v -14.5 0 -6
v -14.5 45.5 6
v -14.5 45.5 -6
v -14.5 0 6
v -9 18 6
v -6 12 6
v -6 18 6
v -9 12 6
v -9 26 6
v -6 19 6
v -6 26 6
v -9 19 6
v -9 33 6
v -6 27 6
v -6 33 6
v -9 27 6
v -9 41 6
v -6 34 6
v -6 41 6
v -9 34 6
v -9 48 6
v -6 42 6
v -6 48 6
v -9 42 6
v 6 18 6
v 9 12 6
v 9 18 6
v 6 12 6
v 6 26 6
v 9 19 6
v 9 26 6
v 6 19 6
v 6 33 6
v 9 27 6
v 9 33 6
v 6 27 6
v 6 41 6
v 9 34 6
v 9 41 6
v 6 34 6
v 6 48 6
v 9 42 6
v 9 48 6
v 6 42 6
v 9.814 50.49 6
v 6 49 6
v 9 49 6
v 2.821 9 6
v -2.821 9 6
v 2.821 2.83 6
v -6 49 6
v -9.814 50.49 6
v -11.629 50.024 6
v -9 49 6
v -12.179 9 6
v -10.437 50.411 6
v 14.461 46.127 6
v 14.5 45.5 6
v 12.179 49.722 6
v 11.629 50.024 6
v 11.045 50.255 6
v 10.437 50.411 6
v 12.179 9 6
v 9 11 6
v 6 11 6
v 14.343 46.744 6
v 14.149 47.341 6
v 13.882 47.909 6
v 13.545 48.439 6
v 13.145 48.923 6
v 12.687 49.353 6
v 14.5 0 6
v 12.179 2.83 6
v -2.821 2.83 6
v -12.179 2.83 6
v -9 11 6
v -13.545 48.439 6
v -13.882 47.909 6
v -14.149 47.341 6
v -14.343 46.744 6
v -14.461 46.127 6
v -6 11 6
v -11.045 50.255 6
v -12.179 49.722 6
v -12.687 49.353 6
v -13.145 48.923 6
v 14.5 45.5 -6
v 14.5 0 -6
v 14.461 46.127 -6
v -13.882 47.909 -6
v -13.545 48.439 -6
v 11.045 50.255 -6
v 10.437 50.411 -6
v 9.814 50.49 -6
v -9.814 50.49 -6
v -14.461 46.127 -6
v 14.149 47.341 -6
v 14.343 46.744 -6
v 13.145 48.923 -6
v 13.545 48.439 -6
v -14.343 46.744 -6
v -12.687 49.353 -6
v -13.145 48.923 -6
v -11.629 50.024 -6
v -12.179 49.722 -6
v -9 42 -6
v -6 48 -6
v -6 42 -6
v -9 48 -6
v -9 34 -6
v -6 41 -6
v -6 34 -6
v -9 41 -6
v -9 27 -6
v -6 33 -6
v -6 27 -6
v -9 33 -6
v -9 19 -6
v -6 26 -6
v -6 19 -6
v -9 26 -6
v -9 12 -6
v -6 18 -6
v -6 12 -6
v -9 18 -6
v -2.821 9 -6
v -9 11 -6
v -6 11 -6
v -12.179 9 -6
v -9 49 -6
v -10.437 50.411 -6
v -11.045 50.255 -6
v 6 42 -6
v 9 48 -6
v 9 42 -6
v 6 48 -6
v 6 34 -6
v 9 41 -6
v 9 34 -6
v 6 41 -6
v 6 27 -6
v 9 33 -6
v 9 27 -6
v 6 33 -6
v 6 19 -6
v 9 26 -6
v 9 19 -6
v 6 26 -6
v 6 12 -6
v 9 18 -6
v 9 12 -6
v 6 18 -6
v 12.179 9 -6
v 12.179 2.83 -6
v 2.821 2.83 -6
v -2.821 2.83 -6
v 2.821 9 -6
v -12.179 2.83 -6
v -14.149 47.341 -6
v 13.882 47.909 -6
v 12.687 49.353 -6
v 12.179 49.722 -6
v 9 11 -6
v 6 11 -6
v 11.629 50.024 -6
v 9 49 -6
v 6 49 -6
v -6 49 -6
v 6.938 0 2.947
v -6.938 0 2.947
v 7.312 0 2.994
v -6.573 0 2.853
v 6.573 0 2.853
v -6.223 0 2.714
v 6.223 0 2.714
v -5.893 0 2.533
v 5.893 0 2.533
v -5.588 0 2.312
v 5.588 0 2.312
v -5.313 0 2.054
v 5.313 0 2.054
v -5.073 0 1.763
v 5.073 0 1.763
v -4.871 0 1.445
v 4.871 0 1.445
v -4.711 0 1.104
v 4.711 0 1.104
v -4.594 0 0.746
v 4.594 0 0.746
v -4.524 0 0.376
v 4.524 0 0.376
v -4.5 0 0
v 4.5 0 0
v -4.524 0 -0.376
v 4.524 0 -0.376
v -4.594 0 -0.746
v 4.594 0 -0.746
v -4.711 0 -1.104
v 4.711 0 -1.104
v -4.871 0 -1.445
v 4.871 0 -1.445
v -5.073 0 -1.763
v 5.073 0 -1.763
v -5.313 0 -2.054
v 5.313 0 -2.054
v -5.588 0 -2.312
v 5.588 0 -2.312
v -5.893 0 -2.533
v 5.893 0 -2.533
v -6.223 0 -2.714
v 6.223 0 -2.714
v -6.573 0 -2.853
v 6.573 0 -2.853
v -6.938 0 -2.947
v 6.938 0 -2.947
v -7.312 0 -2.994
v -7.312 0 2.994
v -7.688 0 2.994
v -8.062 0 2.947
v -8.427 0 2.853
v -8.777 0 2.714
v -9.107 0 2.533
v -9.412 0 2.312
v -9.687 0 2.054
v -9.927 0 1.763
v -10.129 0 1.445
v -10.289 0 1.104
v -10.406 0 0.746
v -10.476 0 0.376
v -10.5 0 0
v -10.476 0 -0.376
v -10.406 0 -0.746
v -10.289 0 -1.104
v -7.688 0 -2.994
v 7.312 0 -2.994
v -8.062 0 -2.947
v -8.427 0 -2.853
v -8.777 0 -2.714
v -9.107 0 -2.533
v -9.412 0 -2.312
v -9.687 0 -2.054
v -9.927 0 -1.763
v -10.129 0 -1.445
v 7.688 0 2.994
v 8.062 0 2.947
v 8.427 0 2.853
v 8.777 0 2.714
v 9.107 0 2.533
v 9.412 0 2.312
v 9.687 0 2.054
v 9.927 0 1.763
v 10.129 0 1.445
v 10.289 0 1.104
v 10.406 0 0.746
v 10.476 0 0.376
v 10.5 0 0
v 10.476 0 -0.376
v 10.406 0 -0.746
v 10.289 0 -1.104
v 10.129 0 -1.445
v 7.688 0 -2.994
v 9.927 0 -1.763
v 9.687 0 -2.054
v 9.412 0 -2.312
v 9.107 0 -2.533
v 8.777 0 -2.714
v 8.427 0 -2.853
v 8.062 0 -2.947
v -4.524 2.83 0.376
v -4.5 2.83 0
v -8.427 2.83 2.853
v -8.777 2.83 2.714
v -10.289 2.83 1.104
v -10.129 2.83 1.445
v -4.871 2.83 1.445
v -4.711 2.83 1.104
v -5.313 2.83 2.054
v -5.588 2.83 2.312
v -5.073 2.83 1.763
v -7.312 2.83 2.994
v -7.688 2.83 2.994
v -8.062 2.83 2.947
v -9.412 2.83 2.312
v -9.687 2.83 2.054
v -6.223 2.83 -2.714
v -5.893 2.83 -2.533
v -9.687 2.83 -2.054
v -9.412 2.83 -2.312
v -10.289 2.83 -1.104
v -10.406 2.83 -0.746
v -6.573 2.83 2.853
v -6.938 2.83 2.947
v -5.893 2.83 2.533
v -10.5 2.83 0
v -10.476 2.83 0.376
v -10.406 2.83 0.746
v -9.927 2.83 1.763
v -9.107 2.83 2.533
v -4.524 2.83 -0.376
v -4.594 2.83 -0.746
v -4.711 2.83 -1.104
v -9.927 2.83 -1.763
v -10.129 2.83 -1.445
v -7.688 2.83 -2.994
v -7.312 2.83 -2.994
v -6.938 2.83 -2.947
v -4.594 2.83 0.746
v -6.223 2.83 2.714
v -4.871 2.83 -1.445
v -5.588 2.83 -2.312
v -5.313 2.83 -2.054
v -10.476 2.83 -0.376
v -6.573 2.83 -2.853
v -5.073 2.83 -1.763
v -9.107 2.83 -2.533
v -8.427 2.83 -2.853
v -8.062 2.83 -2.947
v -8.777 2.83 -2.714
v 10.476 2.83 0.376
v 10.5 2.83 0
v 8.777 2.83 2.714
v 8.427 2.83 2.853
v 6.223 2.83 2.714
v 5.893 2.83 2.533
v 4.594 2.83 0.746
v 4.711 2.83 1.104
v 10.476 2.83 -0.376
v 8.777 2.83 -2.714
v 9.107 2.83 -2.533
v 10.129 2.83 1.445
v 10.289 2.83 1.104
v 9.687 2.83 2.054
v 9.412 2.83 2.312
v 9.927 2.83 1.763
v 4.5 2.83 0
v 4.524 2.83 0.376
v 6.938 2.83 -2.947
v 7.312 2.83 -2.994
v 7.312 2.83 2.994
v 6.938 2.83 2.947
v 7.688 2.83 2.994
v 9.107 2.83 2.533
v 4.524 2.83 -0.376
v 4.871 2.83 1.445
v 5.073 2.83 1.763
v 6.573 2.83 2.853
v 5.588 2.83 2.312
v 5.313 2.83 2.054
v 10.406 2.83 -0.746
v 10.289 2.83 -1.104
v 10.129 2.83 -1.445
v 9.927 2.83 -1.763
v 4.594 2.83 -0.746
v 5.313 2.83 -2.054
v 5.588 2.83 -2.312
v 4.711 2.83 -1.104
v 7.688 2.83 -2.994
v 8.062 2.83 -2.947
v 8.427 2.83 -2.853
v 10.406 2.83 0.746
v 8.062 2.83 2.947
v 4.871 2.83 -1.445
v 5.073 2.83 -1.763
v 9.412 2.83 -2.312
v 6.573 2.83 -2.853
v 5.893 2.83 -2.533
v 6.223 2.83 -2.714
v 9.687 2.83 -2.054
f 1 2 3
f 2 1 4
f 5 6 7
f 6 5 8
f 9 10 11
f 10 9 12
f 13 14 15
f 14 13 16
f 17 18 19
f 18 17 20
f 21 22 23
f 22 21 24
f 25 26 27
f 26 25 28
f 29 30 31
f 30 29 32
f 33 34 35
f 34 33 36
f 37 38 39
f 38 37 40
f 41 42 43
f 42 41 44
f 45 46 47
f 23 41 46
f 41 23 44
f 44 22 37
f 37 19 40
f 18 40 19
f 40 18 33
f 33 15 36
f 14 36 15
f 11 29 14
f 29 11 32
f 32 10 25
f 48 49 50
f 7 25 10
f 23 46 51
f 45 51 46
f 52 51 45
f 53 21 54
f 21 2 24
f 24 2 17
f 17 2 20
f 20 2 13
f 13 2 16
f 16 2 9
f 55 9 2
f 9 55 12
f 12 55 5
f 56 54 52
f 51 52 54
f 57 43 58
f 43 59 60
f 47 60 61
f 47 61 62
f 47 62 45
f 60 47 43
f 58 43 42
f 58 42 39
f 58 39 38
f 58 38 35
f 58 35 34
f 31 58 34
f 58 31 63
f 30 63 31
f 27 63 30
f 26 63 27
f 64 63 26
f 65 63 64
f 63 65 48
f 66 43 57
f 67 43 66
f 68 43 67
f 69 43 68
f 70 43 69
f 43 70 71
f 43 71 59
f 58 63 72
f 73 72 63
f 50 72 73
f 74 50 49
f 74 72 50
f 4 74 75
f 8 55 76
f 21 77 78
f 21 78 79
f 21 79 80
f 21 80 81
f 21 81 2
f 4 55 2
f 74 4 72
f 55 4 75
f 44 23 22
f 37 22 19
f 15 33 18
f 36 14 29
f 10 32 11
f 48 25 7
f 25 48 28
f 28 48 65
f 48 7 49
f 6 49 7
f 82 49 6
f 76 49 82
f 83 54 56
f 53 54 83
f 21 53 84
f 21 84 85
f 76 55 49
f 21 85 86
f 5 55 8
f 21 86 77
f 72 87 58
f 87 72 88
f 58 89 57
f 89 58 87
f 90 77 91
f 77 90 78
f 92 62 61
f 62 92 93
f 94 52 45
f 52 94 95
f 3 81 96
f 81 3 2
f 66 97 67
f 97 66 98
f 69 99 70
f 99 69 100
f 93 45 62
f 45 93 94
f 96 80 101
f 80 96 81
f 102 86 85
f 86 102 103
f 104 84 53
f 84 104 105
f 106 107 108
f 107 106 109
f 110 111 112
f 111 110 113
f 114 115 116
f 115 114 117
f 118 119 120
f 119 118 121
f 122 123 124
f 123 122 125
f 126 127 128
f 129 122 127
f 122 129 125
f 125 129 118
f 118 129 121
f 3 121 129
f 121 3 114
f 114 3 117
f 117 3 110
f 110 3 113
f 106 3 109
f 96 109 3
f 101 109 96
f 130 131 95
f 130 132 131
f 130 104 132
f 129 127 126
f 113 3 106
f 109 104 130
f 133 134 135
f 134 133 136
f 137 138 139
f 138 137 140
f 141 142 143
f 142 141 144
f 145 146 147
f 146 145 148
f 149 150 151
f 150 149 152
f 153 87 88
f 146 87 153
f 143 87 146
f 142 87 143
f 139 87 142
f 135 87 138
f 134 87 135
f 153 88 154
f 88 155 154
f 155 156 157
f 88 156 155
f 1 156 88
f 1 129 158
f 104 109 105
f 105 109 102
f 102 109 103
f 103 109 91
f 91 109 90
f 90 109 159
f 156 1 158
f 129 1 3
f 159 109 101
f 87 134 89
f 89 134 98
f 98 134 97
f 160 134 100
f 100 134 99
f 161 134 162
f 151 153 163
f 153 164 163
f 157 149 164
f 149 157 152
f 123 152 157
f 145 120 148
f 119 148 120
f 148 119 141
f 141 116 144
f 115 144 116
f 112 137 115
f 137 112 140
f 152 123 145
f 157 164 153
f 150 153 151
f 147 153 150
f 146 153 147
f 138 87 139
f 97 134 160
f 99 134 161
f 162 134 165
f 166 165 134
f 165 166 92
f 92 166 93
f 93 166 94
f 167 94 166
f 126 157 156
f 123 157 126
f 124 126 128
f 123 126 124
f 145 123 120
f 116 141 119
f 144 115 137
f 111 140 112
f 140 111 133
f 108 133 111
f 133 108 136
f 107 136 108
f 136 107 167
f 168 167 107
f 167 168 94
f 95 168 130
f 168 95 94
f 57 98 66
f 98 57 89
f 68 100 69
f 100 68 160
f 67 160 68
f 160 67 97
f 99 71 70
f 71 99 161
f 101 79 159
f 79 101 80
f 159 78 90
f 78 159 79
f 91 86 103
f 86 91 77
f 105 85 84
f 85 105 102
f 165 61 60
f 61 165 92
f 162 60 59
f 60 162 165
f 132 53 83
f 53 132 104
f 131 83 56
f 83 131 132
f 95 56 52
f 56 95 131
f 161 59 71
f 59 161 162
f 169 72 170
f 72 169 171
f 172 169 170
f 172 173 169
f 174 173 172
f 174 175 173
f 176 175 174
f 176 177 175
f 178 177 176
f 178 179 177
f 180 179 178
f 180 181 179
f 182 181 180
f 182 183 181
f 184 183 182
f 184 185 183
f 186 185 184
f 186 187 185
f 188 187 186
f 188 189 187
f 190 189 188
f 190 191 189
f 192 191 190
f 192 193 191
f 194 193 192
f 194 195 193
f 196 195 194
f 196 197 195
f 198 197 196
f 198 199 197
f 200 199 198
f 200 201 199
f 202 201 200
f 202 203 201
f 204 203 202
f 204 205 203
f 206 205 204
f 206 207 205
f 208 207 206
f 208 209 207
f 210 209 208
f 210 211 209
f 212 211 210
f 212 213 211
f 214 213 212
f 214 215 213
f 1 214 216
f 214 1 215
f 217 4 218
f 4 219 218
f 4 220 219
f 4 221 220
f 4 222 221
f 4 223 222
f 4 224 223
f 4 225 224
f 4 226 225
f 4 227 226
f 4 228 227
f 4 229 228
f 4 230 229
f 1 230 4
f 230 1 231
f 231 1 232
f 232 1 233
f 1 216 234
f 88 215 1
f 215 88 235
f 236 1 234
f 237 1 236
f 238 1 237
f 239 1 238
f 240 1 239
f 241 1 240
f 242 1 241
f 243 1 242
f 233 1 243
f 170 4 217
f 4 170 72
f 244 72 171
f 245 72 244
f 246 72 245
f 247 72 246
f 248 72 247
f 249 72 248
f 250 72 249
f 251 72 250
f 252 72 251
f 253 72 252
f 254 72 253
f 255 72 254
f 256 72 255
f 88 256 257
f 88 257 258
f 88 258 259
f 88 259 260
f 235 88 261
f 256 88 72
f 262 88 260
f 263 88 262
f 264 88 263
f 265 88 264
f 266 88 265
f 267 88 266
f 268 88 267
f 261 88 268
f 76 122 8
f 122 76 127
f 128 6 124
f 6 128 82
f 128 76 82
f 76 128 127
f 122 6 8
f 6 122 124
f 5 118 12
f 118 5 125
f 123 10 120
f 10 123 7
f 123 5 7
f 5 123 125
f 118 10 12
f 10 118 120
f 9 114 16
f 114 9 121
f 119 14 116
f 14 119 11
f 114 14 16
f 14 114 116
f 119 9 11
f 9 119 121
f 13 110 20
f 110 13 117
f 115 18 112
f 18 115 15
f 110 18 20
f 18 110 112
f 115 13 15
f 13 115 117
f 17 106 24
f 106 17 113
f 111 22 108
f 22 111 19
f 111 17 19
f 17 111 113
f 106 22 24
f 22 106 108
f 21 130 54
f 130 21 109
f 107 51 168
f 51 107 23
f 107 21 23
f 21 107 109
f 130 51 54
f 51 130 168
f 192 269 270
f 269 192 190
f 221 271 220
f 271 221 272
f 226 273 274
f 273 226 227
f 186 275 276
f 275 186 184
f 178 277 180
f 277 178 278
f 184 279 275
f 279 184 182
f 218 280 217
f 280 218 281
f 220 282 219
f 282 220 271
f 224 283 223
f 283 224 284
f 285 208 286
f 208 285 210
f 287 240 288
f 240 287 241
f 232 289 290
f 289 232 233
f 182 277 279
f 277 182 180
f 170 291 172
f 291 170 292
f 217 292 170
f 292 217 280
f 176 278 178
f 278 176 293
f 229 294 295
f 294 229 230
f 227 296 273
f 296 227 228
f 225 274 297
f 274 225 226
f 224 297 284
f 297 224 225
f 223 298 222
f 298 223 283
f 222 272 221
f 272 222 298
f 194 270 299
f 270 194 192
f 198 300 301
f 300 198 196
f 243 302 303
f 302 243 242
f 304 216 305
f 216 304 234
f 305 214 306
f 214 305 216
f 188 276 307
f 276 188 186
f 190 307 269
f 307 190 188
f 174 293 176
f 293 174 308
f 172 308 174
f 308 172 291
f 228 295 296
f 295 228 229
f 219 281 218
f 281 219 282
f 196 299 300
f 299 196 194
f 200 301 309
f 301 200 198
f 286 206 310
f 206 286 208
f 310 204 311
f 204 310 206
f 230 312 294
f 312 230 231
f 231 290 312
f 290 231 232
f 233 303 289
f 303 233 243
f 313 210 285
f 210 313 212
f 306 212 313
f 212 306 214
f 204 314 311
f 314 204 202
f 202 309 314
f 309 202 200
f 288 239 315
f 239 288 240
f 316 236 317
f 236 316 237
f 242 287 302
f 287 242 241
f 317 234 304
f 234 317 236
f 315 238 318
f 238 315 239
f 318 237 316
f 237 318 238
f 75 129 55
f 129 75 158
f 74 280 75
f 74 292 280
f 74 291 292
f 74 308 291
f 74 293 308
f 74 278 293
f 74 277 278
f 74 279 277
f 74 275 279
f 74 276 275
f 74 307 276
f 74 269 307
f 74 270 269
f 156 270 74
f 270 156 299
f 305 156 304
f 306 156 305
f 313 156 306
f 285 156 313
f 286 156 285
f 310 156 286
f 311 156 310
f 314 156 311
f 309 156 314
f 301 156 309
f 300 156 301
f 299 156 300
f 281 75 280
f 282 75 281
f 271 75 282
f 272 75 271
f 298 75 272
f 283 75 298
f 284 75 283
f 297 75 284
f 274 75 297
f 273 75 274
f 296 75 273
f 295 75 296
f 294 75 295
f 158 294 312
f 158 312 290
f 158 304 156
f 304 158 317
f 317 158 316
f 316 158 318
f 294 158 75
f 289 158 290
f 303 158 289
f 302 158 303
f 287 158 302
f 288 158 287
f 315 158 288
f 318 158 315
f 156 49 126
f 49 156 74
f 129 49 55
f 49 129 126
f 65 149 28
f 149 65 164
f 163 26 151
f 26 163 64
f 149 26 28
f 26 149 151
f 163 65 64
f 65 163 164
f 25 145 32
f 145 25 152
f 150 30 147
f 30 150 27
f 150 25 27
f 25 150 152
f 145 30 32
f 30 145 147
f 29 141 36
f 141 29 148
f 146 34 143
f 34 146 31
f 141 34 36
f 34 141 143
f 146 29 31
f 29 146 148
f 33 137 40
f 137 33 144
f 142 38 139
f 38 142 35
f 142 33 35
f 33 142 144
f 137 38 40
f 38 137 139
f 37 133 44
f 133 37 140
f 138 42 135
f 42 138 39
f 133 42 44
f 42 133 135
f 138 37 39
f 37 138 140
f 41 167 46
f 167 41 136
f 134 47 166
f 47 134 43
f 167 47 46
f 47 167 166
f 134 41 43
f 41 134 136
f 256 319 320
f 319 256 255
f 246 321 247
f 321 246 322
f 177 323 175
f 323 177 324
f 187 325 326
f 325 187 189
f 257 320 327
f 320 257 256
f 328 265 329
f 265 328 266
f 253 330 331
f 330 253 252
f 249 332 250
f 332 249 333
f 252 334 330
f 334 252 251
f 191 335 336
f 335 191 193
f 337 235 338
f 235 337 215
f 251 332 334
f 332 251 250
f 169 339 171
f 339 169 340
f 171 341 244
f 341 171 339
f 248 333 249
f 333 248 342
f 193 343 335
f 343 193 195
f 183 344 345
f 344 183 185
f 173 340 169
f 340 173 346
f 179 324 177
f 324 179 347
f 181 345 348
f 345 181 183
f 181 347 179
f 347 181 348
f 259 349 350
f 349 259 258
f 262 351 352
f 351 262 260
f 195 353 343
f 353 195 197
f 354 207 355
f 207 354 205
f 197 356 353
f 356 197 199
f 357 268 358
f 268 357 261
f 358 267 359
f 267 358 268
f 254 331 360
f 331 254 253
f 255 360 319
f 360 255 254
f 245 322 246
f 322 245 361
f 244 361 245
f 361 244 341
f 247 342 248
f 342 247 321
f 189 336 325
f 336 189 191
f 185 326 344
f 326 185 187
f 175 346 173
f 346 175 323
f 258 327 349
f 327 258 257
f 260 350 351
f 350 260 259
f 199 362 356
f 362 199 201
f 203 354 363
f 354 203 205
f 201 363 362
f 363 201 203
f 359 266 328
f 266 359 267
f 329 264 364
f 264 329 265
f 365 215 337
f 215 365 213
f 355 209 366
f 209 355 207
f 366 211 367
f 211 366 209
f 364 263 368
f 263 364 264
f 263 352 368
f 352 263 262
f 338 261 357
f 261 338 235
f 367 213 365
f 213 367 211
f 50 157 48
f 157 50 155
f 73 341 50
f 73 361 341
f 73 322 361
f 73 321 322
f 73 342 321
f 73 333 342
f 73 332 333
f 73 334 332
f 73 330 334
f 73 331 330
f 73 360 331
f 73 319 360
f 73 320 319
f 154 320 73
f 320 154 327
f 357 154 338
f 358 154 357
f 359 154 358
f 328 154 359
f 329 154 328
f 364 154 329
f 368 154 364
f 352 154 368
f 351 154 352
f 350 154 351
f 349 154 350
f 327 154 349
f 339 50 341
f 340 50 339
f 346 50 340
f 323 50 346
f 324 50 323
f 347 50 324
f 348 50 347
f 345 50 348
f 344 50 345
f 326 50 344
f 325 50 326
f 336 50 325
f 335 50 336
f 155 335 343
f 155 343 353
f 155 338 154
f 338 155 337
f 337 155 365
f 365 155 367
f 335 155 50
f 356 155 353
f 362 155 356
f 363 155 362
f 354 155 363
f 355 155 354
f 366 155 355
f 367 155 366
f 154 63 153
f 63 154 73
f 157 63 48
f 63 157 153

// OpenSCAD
$fn = 50;


difference() {
	union() {
		translate(v = [0, 28.5000000000, -6.0000000000]) {
			rotate(a = [0, 0, 0]) {
				hull() {
					translate(v = [-9.5000000000, 17.0000000000, 0]) {
						rotate(a = [0, 0, 0]) {
							translate(v = [0, 0, 0]) {
								rotate(a = [0, 0, 0]) {
									cylinder(h = 12, r = 5);
								}
							}
						}
					}
					translate(v = [9.5000000000, 17.0000000000, 0]) {
						rotate(a = [0, 0, 0]) {
							translate(v = [0, 0, 0]) {
								rotate(a = [0, 0, 0]) {
									cylinder(h = 12, r = 5);
								}
							}
						}
					}
					translate(v = [-9.5000000000, -17.0000000000, 0]) {
						rotate(a = [0, 0, 0]) {
							translate(v = [0, 0, 0]) {
								rotate(a = [0, 0, 0]) {
									cylinder(h = 12, r = 5);
								}
							}
						}
					}
					translate(v = [9.5000000000, -17.0000000000, 0]) {
						rotate(a = [0, 0, 0]) {
							translate(v = [0, 0, 0]) {
								rotate(a = [0, 0, 0]) {
									cylinder(h = 12, r = 5);
								}
							}
						}
					}
				}
			}
		}
		translate(v = [-14.5000000000, 0, -6.0000000000]) {
			rotate(a = [0, 0, 0]) {
				cube(size = [29, 13.5000000000, 12]);
			}
		}
	}
	union() {
		translate(v = [-9.0000000000, 11.0000000000, -50]) {
			rotate(a = [0, 0, 0]) {
				cube(size = [3, 1, 100]);
			}
		}
		translate(v = [-9.0000000000, 18.0000000000, -50]) {
			rotate(a = [0, 0, 0]) {
				cube(size = [3, 1, 100]);
			}
		}
		translate(v = [-9.0000000000, 26.0000000000, -50]) {
			rotate(a = [0, 0, 0]) {
				cube(size = [3, 1, 100]);
			}
		}
		translate(v = [-9.0000000000, 33.0000000000, -50]) {
			rotate(a = [0, 0, 0]) {
				cube(size = [3, 1, 100]);
			}
		}
		translate(v = [-9.0000000000, 41.0000000000, -50]) {
			rotate(a = [0, 0, 0]) {
				cube(size = [3, 1, 100]);
			}
		}
		translate(v = [-9.0000000000, 48.0000000000, -50]) {
			rotate(a = [0, 0, 0]) {
				cube(size = [3, 1, 100]);
			}
		}
		translate(v = [-7.5000000000, 8, 0]) {
			rotate(a = [90, 0, 0]) {
				cylinder(h = 8, r = 3.0000000000);
			}
		}
		translate(v = [-12.1793760832, 9, -25]) {
			rotate(a = [90, 0, 0]) {
				cube(size = [9.3587521664, 100, 6.1700000000]);
			}
		}
		translate(v = [6.0000000000, 11.0000000000, -50]) {
			rotate(a = [0, 0, 0]) {
				cube(size = [3, 1, 100]);
			}
		}
		translate(v = [6.0000000000, 18.0000000000, -50]) {
			rotate(a = [0, 0, 0]) {
				cube(size = [3, 1, 100]);
			}
		}
		translate(v = [6.0000000000, 26.0000000000, -50]) {
			rotate(a = [0, 0, 0]) {
				cube(size = [3, 1, 100]);
			}
		}
		translate(v = [6.0000000000, 33.0000000000, -50]) {
			rotate(a = [0, 0, 0]) {
				cube(size = [3, 1, 100]);
			}
		}
		translate(v = [6.0000000000, 41.0000000000, -50]) {
			rotate(a = [0, 0, 0]) {
				cube(size = [3, 1, 100]);
			}
		}
		translate(v = [6.0000000000, 48.0000000000, -50]) {
			rotate(a = [0, 0, 0]) {
				cube(size = [3, 1, 100]);
			}
		}
		translate(v = [7.5000000000, 8, 0]) {
			rotate(a = [90, 0, 0]) {
				cylinder(h = 8, r = 3.0000000000);
			}
		}
		translate(v = [2.8206239168, 9, -25]) {
			rotate(a = [90, 0, 0]) {
				cube(size = [9.3587521664, 100, 6.1700000000]);
			}
		}
	}
}
